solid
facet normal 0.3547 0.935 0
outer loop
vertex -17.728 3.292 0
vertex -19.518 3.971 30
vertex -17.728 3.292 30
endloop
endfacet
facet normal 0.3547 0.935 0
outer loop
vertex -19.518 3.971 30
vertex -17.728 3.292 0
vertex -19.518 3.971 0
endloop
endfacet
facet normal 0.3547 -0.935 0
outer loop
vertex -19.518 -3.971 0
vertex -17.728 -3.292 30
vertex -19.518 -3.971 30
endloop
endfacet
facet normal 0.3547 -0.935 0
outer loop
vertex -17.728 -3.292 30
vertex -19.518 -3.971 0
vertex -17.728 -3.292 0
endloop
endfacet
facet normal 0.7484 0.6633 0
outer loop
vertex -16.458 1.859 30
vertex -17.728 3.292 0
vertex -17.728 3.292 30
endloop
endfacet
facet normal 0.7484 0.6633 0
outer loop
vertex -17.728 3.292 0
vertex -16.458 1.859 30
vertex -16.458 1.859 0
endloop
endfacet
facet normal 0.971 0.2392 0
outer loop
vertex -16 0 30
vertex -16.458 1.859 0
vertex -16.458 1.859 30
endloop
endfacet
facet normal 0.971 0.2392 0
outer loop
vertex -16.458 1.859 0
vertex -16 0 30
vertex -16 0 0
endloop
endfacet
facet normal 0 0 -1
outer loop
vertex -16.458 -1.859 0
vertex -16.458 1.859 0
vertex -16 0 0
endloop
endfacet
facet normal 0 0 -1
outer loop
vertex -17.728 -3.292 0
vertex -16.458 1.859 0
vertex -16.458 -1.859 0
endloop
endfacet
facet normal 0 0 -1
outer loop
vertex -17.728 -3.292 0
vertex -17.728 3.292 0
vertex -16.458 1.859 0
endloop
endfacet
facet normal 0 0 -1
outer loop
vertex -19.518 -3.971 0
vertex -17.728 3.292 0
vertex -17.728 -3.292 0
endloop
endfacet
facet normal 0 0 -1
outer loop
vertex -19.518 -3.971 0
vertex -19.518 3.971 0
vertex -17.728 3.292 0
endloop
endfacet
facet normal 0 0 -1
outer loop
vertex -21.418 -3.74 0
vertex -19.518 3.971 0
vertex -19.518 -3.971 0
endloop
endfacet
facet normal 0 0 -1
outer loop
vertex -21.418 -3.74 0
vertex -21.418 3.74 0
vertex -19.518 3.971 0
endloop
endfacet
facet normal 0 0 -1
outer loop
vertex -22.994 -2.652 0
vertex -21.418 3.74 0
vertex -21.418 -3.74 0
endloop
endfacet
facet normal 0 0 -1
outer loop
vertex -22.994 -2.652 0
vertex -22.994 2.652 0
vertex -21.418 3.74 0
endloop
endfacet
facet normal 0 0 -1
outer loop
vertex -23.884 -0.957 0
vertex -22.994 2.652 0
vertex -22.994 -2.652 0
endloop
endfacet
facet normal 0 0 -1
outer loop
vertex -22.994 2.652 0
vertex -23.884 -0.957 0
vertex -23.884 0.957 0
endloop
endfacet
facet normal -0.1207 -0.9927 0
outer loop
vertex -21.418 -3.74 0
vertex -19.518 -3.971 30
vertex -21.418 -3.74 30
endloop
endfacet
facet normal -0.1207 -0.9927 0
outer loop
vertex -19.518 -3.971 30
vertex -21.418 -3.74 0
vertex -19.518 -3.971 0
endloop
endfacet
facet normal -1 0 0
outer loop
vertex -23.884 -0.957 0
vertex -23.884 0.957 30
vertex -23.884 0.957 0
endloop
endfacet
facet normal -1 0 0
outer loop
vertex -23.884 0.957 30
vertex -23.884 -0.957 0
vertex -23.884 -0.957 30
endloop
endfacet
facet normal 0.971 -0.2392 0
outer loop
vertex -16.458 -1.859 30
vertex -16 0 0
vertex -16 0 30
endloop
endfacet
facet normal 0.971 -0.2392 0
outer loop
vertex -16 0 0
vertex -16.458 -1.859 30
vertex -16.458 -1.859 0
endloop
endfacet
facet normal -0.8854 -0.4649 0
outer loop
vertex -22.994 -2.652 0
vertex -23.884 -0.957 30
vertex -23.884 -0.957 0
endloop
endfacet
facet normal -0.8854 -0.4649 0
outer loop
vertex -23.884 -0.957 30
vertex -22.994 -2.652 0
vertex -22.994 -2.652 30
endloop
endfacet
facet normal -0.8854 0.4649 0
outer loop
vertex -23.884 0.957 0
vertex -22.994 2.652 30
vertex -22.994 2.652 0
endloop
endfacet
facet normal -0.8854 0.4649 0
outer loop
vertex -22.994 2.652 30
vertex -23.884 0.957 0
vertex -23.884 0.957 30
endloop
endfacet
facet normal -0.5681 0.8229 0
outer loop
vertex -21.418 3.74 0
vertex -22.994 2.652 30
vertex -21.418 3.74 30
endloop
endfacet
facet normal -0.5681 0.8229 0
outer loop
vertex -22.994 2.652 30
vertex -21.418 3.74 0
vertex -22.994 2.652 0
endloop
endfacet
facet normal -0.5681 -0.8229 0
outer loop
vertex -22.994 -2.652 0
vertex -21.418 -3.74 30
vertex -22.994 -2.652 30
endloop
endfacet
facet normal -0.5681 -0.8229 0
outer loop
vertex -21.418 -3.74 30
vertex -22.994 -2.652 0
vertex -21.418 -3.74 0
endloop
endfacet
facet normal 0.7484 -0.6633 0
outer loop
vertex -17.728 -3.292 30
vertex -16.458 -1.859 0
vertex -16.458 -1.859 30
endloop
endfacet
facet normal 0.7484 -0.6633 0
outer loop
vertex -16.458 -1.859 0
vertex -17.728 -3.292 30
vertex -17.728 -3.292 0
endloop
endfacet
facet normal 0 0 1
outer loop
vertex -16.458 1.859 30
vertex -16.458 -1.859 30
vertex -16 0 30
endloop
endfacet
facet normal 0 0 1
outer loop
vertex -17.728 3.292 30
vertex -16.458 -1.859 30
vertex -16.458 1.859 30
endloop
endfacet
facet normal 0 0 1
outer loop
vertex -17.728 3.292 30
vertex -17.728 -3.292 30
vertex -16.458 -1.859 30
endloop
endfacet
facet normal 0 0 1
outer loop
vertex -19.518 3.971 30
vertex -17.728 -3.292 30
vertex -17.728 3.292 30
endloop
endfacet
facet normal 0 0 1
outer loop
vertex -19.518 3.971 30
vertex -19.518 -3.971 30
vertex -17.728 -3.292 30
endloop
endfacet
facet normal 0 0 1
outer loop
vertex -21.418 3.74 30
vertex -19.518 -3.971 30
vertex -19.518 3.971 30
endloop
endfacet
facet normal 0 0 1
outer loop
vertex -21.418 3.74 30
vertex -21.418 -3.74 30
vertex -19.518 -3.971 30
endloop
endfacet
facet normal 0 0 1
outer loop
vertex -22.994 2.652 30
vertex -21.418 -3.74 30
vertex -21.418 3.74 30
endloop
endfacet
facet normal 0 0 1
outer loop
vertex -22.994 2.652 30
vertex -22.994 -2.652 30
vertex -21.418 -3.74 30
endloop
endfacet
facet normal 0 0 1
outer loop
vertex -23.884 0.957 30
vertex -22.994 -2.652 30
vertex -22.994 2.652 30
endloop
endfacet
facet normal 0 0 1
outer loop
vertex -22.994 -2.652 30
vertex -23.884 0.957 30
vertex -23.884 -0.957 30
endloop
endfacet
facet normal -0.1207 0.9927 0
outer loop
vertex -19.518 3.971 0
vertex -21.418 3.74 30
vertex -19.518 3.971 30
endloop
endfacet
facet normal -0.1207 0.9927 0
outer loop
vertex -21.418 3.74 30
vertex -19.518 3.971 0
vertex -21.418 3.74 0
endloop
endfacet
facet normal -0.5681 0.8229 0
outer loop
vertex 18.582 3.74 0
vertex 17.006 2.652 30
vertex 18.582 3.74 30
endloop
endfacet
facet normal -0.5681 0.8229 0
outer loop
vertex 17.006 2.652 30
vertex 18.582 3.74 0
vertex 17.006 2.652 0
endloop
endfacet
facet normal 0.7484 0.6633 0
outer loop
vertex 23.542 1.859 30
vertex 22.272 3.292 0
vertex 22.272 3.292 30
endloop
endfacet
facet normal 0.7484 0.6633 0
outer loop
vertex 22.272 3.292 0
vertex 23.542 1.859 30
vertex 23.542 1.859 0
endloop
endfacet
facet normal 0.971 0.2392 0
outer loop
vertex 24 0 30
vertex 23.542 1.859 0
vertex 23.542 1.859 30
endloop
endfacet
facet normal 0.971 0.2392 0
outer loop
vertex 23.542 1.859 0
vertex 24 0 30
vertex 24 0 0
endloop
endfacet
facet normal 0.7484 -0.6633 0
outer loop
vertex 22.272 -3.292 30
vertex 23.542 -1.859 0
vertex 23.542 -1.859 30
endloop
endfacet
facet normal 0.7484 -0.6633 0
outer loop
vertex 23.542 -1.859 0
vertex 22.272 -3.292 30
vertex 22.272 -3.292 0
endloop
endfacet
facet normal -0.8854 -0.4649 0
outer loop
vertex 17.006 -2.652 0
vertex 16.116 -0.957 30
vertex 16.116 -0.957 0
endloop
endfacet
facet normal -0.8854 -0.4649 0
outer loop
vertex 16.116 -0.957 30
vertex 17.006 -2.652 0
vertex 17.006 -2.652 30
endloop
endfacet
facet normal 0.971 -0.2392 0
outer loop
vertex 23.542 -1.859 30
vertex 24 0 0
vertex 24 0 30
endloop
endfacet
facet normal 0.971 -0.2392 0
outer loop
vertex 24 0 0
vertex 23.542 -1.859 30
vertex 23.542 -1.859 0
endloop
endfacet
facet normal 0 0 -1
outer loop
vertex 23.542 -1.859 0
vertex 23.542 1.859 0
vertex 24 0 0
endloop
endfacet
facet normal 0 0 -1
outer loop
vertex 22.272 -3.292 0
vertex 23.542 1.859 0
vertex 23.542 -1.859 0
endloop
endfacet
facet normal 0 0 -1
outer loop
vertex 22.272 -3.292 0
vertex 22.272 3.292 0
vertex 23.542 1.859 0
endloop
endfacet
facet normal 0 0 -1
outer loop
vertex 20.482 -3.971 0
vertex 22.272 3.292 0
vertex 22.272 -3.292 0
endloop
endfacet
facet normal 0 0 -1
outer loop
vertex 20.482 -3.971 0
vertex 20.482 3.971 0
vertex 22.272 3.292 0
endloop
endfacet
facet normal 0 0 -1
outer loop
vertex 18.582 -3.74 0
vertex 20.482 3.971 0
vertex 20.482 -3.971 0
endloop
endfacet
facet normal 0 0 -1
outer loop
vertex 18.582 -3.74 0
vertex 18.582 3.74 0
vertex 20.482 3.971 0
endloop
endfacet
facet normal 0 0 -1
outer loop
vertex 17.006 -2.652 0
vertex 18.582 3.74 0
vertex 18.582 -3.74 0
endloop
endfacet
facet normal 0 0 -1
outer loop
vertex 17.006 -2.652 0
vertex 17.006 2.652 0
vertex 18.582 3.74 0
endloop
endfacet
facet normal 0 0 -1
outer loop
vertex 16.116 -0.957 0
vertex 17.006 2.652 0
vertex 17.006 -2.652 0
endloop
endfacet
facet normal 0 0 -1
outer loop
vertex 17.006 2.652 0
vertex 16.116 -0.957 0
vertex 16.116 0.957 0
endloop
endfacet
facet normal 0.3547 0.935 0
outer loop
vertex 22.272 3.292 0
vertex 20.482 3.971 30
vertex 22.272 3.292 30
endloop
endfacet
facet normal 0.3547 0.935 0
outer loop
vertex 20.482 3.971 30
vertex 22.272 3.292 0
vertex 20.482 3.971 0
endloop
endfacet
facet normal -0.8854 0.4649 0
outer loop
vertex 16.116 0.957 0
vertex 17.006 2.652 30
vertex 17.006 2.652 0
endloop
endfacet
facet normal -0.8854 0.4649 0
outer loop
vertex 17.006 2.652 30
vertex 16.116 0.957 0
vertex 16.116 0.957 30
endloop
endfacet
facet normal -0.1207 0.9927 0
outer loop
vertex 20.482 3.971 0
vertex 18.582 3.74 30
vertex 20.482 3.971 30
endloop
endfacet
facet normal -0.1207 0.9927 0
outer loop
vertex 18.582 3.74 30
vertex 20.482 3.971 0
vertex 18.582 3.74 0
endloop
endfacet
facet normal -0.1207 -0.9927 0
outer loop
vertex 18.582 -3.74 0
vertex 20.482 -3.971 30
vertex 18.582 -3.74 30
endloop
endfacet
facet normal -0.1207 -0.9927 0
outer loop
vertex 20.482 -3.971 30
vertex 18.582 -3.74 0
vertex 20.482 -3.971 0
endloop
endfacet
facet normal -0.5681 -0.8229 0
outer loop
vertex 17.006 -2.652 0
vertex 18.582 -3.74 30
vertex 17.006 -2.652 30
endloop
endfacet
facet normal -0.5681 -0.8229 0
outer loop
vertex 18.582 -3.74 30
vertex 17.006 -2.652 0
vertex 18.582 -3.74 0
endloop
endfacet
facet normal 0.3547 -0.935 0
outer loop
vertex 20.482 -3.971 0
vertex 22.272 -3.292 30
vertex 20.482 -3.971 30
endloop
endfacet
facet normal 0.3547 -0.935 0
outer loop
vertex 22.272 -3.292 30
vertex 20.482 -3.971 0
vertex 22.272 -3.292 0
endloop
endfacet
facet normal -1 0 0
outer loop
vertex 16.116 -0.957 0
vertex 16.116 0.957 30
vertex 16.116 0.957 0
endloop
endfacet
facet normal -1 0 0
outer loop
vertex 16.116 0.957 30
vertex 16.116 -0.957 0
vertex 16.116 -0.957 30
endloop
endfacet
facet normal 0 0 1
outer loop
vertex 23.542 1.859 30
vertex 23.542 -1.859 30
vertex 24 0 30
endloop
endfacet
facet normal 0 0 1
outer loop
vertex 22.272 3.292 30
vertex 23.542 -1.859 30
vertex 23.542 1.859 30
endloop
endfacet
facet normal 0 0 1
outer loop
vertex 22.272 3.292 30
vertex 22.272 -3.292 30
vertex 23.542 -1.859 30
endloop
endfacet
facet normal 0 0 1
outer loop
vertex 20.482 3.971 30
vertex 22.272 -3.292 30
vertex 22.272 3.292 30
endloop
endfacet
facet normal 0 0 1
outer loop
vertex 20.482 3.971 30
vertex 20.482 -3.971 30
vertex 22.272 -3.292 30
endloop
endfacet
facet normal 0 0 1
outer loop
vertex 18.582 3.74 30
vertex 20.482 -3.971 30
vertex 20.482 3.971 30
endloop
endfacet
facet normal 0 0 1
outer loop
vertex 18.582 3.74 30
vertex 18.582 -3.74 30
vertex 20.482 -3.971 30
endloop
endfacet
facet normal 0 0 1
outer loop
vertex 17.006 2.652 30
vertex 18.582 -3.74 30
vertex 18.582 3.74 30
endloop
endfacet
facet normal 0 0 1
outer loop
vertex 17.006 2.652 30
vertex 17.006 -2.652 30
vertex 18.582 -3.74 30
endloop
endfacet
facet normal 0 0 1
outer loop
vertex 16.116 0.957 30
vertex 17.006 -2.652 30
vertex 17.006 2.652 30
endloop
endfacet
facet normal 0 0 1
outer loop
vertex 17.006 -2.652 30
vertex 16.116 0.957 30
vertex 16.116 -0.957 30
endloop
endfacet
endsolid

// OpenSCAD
/* doodle-meta {"version":1,"parameters":{"bend_radius":{"label":"Bend Radius","description":"Radius of the semi-circular top bend","unit":"mm","feature":"bend"},"leg_length":{"label":"Leg Length","description":"Length of the straight legs extending downwards","unit":"mm","feature":"legs"},"rod_diameter":{"label":"Rod Diameter","description":"Diameter of the circular cross-section","unit":"mm","feature":"cross_section"}},"features":{"bend":{"kind":"dimension","axis":"z","label":"Bend Radius"},"legs":{"kind":"dimension","axis":"z","label":"Leg Length"},"cross_section":{"kind":"dimension","axis":"x","label":"Rod Diameter"}}} */

// Parameters
bend_radius = 20;
leg_length = 30;
rod_diameter = 8;

// Derived dimensions
rod_radius = rod_diameter / 2;
total_height = leg_length + bend_radius + rod_radius; // 30 + 20 + 4 = 54
total_width = 2 * bend_radius + rod_diameter; // 40 + 8 = 48

// Main Body Construction
// 1. Left Leg
// Cylinder centered at X=-bend_radius, Y=0.
// Extends from Z=0 to Z=leg_length.
translate([-bend_radius, 0, leg_length/2])
    cylinder(h=leg_length, r=rod_radius, center=true);

// 2. Right Leg
// Cylinder centered at X=bend_radius, Y=0.
// Extends from Z=0 to Z=leg_length.
translate([bend_radius, 0, leg_length/2])
    cylinder(h=leg_length, r=rod_radius, center=true);

// 3. Semi-circular Bend
// The bend connects the tops of the legs.
// Center of the bend arc is at (0, 0, leg_length).
// We create a torus segment.
// Torus major radius = bend_radius, minor radius = rod_radius.
// We need the upper half (Z >= leg_length).
// A full torus centered at (0,0,leg_length) in the XY plane (rotated 90 deg around X)
// would have its tube centerline in the XZ plane.
// Standard torus: axis is Z. Tube centerline is in XY plane.
// We want the tube centerline to be in the XZ plane (vertical arc).
// So we rotate the torus 90 degrees around X.
// Then we intersect with a cube to keep only the top half (Z >= leg_length).

translate([0, 0, leg_length])
    rotate([90, 0, 0])
    intersection() {
        torus(r=bend_radius, r2=rod_radius);
        // Keep only the part where Z >= 0 (relative to the torus center)
        // Since we rotated 90 around X, the "up" direction of the torus tube
        // corresponds to +Z in the global frame if we think about the arc.
        // Actually, let's verify.
        // Torus default: ring in XY, tube around it.
        // Rotate 90 around X: Ring moves to XZ plane.
        // The "top" of the ring (positive Z) is what we want.
        // So we intersect with a cube covering Z >= 0.
        // The cube needs to be large enough to cover the torus but cut at Z=0 local.
        translate([0, 0, total_height]) // Move cube up so its bottom is at Z=0 local
            cube([total_width + rod_diameter, total_width + rod_diameter, total_height], center=true);
    }

// Helper module for Torus
module torus(r, r2) {
    rotate_extrude(convexity=10)
        translate([r, 0, 0])
        circle(r=r2);
}
